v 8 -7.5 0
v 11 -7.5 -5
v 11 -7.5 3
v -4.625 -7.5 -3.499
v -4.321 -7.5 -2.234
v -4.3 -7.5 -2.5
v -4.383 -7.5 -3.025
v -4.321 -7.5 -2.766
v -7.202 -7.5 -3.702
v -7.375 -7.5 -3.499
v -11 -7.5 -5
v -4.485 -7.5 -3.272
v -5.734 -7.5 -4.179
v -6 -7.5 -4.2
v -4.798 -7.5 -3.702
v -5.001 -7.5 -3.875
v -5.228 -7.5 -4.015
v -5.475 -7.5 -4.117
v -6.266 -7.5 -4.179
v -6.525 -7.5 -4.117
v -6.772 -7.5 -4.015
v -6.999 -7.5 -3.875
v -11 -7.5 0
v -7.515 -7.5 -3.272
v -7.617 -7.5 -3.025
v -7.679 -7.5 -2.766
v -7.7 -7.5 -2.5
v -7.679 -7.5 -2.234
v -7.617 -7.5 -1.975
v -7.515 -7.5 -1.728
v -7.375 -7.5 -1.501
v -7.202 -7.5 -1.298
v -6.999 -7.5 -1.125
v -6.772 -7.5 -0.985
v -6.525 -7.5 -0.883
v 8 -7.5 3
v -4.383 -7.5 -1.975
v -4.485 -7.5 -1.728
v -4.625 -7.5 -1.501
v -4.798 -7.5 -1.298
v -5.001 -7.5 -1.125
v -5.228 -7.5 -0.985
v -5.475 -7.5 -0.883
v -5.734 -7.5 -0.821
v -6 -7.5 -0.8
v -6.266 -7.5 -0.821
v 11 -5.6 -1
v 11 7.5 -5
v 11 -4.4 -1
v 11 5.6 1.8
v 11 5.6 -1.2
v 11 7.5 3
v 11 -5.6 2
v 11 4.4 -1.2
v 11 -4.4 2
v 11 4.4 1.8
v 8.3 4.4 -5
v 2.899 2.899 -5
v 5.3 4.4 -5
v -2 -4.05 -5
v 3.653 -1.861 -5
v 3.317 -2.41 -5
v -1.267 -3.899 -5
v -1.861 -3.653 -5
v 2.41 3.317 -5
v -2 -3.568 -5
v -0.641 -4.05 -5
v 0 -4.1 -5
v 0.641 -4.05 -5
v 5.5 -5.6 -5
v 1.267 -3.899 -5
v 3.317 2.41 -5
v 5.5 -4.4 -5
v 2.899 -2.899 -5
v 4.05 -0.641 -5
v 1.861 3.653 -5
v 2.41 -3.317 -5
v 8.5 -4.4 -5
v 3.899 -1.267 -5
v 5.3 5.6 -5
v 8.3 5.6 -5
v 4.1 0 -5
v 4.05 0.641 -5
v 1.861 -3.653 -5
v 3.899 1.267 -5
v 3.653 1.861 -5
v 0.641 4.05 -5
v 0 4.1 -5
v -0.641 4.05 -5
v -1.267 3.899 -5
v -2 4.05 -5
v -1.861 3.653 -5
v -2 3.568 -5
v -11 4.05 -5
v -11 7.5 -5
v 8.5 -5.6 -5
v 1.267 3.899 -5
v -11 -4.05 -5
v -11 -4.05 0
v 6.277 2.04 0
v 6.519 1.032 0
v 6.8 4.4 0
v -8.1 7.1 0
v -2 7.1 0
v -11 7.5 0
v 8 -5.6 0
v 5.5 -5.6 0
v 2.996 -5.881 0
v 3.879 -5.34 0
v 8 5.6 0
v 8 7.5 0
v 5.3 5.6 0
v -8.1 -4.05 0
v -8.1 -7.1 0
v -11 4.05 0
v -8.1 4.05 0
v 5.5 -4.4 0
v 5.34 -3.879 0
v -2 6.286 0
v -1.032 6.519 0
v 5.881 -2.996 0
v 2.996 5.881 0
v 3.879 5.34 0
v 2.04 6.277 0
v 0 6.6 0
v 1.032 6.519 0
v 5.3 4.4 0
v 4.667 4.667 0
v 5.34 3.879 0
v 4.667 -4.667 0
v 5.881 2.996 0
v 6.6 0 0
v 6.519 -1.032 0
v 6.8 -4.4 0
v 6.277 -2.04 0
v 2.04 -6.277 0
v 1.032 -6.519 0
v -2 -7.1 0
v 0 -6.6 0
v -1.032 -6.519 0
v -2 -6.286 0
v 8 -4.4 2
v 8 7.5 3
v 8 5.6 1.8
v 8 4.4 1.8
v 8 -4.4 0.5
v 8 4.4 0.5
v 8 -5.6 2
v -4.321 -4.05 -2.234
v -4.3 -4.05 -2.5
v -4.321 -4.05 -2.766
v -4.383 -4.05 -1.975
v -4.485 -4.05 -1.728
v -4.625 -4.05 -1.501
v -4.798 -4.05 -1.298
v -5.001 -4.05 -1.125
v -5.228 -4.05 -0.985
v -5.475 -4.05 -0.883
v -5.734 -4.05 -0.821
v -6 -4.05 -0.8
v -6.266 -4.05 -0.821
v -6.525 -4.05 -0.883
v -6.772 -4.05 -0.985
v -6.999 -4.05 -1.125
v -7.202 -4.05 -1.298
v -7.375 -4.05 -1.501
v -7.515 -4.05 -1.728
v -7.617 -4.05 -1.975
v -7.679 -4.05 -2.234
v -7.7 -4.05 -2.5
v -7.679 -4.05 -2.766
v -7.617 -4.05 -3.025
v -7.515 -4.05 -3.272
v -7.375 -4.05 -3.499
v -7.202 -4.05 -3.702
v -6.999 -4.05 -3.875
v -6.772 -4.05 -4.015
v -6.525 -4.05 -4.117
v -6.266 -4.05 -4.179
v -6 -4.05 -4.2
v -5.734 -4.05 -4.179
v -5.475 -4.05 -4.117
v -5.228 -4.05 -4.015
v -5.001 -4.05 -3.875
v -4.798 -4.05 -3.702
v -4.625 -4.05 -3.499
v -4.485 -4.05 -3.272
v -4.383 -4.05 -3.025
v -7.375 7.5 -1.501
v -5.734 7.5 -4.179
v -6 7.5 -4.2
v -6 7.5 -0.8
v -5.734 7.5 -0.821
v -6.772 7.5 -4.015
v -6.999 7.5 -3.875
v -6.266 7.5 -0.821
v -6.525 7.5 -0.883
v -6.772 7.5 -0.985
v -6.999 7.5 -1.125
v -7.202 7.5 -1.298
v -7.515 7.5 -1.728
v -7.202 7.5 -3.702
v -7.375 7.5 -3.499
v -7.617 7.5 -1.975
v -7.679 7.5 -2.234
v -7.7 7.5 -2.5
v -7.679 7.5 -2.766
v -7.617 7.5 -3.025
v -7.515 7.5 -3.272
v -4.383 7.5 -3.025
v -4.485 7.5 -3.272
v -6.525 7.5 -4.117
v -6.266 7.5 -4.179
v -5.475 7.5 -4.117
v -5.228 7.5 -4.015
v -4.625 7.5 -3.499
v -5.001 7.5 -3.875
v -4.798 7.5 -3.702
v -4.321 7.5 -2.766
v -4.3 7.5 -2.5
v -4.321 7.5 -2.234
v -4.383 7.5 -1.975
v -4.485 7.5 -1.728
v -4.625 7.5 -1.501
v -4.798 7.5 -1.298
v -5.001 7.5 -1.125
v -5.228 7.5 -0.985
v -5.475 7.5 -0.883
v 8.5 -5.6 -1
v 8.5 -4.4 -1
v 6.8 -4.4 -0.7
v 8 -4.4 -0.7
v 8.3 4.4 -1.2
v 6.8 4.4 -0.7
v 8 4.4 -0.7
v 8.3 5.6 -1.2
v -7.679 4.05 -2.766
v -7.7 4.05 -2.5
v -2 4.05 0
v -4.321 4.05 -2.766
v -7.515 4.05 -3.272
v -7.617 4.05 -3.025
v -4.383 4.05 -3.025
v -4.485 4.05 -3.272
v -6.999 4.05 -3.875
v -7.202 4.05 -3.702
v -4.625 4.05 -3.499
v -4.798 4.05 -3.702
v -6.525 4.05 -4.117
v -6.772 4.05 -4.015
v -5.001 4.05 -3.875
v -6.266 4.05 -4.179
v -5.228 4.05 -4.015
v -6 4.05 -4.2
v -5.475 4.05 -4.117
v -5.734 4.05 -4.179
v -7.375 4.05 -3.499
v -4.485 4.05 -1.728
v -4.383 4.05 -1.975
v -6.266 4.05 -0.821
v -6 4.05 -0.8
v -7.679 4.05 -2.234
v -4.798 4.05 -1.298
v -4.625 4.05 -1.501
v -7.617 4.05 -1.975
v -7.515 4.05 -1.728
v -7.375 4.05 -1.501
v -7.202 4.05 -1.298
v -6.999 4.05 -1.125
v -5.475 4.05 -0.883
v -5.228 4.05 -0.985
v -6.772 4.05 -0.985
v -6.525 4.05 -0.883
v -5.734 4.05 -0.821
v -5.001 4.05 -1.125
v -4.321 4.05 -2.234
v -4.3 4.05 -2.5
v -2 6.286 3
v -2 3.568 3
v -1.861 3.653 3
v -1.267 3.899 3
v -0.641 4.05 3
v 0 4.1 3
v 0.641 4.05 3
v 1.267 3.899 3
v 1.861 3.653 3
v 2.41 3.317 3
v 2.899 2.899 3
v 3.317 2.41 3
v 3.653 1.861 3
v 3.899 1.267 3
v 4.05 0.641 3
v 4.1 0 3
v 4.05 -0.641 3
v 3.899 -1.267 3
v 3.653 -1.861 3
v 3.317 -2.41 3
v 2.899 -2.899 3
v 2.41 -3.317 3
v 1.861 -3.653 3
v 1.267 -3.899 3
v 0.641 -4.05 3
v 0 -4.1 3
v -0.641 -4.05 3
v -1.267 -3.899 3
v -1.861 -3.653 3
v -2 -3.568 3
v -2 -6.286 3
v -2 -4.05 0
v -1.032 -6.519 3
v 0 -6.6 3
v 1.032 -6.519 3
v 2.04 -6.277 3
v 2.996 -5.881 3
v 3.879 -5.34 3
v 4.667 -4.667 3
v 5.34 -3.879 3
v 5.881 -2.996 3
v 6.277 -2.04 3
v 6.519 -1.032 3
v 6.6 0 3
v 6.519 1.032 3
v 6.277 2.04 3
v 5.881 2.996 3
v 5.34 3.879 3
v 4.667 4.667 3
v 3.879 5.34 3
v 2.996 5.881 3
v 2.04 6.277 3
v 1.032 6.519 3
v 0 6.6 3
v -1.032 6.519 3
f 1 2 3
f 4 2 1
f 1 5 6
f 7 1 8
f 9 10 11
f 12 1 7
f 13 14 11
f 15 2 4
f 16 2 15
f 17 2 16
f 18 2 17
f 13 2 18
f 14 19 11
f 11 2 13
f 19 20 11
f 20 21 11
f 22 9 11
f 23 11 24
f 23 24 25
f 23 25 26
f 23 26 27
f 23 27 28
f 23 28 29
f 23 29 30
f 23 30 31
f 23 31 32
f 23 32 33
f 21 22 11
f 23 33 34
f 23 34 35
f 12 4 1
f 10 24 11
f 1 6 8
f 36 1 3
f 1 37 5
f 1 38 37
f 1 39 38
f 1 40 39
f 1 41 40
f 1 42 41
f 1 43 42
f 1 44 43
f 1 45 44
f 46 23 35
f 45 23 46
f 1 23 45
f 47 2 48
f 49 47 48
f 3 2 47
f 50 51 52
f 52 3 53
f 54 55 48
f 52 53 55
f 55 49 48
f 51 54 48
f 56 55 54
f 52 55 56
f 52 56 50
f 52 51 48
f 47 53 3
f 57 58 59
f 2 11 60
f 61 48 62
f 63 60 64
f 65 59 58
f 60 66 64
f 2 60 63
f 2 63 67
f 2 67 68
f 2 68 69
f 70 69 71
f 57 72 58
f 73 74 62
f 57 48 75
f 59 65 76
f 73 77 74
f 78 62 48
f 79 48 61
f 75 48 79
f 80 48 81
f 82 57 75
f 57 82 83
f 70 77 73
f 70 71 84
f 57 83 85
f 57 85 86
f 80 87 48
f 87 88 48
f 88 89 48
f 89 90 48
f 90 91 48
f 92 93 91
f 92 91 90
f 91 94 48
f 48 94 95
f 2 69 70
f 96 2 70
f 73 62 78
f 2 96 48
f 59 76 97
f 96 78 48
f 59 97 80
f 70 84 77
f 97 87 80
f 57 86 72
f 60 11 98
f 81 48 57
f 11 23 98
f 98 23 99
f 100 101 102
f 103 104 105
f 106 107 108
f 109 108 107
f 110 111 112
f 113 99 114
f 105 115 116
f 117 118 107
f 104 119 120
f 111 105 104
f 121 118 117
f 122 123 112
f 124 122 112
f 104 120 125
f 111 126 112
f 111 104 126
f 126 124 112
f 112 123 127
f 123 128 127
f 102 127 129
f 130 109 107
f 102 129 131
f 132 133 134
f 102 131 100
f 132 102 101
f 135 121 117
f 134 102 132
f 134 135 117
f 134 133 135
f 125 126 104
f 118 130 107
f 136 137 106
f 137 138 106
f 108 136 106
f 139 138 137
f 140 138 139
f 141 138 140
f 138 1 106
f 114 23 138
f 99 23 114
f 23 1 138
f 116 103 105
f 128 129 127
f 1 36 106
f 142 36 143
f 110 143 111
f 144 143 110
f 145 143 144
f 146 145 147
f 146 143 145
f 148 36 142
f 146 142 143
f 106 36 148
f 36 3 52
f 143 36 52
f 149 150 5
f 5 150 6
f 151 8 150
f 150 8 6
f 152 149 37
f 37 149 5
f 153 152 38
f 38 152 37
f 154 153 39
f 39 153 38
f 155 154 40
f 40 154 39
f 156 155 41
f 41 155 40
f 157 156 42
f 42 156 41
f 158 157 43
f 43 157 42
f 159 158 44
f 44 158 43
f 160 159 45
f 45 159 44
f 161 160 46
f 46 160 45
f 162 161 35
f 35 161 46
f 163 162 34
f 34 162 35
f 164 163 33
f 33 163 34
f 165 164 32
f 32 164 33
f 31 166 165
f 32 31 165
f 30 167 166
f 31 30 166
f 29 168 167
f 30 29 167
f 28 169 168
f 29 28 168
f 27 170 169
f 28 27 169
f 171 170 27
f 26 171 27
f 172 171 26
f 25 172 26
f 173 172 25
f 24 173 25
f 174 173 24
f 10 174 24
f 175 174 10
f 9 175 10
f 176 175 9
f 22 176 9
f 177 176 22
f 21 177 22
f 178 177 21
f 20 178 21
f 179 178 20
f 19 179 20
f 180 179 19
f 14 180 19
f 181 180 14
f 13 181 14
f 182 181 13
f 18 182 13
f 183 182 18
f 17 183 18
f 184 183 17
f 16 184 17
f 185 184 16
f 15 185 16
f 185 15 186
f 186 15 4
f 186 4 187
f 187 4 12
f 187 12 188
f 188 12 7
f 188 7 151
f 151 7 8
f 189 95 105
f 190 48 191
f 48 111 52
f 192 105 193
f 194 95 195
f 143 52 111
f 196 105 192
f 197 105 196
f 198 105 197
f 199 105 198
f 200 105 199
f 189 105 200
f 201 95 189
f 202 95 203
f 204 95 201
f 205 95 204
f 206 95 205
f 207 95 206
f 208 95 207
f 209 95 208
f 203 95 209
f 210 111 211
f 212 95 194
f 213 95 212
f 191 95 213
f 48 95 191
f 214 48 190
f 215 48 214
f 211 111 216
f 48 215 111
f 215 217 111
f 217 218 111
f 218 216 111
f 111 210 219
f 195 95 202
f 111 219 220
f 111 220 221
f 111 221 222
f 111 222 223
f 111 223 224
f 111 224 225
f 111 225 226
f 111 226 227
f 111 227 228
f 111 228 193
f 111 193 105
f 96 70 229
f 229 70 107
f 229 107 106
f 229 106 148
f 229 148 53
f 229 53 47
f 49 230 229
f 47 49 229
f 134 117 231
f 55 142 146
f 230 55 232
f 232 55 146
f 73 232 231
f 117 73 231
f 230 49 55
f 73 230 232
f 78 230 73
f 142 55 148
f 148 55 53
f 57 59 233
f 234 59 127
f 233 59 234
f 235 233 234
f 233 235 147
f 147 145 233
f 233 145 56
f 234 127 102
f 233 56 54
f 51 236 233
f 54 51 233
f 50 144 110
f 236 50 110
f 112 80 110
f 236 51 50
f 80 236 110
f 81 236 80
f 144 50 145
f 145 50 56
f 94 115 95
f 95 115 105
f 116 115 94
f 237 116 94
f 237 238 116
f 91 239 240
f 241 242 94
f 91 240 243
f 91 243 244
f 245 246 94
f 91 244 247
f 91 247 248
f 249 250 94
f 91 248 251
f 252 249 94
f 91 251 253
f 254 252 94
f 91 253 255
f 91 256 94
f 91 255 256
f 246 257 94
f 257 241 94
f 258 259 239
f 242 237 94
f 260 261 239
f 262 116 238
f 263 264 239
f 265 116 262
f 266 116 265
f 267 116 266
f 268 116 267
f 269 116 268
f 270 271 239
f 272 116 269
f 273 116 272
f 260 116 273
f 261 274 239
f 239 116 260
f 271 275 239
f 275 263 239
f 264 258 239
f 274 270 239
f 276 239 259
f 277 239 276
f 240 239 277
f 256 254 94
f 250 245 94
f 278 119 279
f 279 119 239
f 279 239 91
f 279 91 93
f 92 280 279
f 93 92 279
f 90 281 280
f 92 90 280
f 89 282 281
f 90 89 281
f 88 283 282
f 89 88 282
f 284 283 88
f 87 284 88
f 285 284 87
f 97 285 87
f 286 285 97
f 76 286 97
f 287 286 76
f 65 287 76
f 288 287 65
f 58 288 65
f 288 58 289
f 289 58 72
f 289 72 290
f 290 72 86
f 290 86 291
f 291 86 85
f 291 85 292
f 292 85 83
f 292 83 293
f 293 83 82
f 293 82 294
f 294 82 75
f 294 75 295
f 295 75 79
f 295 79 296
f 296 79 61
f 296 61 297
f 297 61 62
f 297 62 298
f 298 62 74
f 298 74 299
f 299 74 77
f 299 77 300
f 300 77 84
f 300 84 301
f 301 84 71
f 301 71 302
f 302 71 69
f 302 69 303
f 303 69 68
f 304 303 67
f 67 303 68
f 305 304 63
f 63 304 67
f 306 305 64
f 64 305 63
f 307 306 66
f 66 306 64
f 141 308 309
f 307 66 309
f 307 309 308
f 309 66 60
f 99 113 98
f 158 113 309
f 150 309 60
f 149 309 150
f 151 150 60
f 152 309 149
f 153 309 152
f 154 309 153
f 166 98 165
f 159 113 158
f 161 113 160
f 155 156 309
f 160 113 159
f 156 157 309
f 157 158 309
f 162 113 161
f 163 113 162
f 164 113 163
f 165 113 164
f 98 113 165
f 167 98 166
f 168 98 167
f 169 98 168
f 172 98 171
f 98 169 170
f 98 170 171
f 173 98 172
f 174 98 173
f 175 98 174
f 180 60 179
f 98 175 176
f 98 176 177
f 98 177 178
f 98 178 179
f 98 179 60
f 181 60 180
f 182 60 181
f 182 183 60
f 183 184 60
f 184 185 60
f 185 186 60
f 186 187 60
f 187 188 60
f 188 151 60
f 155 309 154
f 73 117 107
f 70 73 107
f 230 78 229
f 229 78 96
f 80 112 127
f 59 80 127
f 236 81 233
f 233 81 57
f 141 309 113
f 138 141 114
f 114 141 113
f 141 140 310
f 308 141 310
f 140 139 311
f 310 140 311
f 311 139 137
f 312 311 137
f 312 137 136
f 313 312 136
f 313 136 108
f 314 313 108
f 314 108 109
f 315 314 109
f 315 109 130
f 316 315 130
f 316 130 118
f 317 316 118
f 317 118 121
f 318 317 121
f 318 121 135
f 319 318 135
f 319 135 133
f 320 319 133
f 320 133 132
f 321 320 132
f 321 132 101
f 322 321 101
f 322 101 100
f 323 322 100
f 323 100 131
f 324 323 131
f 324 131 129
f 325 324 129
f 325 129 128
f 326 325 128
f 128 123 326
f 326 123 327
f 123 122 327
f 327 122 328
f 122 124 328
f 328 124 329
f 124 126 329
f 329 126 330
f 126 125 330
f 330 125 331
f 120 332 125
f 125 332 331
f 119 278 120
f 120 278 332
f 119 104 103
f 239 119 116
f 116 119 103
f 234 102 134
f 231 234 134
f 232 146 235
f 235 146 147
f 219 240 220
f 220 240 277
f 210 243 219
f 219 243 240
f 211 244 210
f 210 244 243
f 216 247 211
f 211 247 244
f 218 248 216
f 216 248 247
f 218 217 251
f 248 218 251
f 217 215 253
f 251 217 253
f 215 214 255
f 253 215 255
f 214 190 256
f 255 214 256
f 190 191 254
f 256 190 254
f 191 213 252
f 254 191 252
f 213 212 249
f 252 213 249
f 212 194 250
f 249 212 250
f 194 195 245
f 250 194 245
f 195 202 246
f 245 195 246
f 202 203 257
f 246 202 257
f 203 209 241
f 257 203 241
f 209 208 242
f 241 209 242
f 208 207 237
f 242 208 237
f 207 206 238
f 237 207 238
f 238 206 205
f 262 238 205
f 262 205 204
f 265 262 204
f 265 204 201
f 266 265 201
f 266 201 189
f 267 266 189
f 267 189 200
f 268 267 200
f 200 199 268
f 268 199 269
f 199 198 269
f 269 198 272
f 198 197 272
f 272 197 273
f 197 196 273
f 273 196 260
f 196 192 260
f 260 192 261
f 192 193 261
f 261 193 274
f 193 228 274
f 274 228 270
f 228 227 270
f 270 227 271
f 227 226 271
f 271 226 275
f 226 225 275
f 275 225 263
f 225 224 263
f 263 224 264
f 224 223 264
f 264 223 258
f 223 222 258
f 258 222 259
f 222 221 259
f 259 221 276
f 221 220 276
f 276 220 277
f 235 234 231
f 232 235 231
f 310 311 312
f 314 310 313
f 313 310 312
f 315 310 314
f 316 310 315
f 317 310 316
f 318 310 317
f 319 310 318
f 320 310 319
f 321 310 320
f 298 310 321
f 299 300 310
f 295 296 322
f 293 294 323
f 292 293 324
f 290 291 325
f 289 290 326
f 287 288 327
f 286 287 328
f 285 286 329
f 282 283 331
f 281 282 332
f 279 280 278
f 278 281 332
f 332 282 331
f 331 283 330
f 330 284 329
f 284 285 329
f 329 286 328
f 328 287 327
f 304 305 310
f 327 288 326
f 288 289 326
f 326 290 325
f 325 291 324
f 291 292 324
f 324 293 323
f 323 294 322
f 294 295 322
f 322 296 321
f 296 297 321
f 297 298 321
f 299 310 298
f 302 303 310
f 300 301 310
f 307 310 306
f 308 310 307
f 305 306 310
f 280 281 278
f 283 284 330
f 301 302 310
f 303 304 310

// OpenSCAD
tol=0.1;
$fn=40;
width = 15;
length=22;
height = 5;
switch_plate_length=3;
switch_plate_height=3;


stopswitch_holder();

module stopswitch_holder(){

	rotate([0,0,90])
	difference() {
		union() {
			translate([-width/2,-length/2,-height]) cube(size=[width,length,height]);
			translate([-width/2,-length/2,0]) cube(size=[width,switch_plate_length,switch_plate_height]);
			// cone
			translate([0,0,-height]) cylinder(r=6.5+tol,h=height+switch_plate_height);
		}
		
		translate([0,0,-height-tol]) #cylinder(r=4+tol,h=height+switch_plate_height+2*tol);
		//translate([0,0,-1]) #cylinder(r=5+tol,h=6);

		// gaten zipties
		translate([-10/2-1.2/2,-length/2+switch_plate_length+tol,switch_plate_height-3-1]) rotate([90,0,0]) #cube(size=[1.2,3,switch_plate_length+2*tol]);
		translate([5-1.2/2,-length/2+switch_plate_length+tol,switch_plate_height-3-1.2]) rotate([90,0,0]) #cube(size=[1.2,3,switch_plate_length+2*tol]);

		// haakse gaten zipties
		rotate([90,0,0]) translate([0,length/2-switch_plate_height,length/2-(8-3)]) {
		// gaten zipties
		translate([-10/2-1.2/2,-length/2+switch_plate_length+tol,switch_plate_height-2.5-1]) rotate([90,0,0]) #cube(size=[1.2,3,height+tol*2]);
		translate([5-1.2/2,-length/2+switch_plate_length+tol,switch_plate_height-2.5-1.2]) rotate([90,0,0]) #cube(size=[1.2,3,height+tol*2]);
		}

		// extra balkje onder zipties
		translate([-10/2,-length/2+switch_plate_length,switch_plate_height-2.5]) rotate([0,90,0]) #cube(size=[1.2,1.2,10]);
		

		
		// klem gat
		translate([(-8-tol)/2,2,-height-tol]) #cube(size=[8+tol,length/2+tol,height+2*tol]);

		// weggommen halve cirkel geleidingsbus
		translate([(-7-tol),2,0]) cube(size=[14+2*tol,12/2+tol,switch_plate_height+2*tol]);

		// spleet voor ziptie achter rod
		//translate([(-width/2-tol),-length/2+switch_plate_length,0]) #cube(size=[width+2*tol,1,switch_plate_height+2*tol]);

		// schroefgat
		translate([-width/2-tol,6,-height/2]) rotate([0,90,0]) #cylinder(r=1.5+tol*2,h=width+2*tol);
		


	}
}
